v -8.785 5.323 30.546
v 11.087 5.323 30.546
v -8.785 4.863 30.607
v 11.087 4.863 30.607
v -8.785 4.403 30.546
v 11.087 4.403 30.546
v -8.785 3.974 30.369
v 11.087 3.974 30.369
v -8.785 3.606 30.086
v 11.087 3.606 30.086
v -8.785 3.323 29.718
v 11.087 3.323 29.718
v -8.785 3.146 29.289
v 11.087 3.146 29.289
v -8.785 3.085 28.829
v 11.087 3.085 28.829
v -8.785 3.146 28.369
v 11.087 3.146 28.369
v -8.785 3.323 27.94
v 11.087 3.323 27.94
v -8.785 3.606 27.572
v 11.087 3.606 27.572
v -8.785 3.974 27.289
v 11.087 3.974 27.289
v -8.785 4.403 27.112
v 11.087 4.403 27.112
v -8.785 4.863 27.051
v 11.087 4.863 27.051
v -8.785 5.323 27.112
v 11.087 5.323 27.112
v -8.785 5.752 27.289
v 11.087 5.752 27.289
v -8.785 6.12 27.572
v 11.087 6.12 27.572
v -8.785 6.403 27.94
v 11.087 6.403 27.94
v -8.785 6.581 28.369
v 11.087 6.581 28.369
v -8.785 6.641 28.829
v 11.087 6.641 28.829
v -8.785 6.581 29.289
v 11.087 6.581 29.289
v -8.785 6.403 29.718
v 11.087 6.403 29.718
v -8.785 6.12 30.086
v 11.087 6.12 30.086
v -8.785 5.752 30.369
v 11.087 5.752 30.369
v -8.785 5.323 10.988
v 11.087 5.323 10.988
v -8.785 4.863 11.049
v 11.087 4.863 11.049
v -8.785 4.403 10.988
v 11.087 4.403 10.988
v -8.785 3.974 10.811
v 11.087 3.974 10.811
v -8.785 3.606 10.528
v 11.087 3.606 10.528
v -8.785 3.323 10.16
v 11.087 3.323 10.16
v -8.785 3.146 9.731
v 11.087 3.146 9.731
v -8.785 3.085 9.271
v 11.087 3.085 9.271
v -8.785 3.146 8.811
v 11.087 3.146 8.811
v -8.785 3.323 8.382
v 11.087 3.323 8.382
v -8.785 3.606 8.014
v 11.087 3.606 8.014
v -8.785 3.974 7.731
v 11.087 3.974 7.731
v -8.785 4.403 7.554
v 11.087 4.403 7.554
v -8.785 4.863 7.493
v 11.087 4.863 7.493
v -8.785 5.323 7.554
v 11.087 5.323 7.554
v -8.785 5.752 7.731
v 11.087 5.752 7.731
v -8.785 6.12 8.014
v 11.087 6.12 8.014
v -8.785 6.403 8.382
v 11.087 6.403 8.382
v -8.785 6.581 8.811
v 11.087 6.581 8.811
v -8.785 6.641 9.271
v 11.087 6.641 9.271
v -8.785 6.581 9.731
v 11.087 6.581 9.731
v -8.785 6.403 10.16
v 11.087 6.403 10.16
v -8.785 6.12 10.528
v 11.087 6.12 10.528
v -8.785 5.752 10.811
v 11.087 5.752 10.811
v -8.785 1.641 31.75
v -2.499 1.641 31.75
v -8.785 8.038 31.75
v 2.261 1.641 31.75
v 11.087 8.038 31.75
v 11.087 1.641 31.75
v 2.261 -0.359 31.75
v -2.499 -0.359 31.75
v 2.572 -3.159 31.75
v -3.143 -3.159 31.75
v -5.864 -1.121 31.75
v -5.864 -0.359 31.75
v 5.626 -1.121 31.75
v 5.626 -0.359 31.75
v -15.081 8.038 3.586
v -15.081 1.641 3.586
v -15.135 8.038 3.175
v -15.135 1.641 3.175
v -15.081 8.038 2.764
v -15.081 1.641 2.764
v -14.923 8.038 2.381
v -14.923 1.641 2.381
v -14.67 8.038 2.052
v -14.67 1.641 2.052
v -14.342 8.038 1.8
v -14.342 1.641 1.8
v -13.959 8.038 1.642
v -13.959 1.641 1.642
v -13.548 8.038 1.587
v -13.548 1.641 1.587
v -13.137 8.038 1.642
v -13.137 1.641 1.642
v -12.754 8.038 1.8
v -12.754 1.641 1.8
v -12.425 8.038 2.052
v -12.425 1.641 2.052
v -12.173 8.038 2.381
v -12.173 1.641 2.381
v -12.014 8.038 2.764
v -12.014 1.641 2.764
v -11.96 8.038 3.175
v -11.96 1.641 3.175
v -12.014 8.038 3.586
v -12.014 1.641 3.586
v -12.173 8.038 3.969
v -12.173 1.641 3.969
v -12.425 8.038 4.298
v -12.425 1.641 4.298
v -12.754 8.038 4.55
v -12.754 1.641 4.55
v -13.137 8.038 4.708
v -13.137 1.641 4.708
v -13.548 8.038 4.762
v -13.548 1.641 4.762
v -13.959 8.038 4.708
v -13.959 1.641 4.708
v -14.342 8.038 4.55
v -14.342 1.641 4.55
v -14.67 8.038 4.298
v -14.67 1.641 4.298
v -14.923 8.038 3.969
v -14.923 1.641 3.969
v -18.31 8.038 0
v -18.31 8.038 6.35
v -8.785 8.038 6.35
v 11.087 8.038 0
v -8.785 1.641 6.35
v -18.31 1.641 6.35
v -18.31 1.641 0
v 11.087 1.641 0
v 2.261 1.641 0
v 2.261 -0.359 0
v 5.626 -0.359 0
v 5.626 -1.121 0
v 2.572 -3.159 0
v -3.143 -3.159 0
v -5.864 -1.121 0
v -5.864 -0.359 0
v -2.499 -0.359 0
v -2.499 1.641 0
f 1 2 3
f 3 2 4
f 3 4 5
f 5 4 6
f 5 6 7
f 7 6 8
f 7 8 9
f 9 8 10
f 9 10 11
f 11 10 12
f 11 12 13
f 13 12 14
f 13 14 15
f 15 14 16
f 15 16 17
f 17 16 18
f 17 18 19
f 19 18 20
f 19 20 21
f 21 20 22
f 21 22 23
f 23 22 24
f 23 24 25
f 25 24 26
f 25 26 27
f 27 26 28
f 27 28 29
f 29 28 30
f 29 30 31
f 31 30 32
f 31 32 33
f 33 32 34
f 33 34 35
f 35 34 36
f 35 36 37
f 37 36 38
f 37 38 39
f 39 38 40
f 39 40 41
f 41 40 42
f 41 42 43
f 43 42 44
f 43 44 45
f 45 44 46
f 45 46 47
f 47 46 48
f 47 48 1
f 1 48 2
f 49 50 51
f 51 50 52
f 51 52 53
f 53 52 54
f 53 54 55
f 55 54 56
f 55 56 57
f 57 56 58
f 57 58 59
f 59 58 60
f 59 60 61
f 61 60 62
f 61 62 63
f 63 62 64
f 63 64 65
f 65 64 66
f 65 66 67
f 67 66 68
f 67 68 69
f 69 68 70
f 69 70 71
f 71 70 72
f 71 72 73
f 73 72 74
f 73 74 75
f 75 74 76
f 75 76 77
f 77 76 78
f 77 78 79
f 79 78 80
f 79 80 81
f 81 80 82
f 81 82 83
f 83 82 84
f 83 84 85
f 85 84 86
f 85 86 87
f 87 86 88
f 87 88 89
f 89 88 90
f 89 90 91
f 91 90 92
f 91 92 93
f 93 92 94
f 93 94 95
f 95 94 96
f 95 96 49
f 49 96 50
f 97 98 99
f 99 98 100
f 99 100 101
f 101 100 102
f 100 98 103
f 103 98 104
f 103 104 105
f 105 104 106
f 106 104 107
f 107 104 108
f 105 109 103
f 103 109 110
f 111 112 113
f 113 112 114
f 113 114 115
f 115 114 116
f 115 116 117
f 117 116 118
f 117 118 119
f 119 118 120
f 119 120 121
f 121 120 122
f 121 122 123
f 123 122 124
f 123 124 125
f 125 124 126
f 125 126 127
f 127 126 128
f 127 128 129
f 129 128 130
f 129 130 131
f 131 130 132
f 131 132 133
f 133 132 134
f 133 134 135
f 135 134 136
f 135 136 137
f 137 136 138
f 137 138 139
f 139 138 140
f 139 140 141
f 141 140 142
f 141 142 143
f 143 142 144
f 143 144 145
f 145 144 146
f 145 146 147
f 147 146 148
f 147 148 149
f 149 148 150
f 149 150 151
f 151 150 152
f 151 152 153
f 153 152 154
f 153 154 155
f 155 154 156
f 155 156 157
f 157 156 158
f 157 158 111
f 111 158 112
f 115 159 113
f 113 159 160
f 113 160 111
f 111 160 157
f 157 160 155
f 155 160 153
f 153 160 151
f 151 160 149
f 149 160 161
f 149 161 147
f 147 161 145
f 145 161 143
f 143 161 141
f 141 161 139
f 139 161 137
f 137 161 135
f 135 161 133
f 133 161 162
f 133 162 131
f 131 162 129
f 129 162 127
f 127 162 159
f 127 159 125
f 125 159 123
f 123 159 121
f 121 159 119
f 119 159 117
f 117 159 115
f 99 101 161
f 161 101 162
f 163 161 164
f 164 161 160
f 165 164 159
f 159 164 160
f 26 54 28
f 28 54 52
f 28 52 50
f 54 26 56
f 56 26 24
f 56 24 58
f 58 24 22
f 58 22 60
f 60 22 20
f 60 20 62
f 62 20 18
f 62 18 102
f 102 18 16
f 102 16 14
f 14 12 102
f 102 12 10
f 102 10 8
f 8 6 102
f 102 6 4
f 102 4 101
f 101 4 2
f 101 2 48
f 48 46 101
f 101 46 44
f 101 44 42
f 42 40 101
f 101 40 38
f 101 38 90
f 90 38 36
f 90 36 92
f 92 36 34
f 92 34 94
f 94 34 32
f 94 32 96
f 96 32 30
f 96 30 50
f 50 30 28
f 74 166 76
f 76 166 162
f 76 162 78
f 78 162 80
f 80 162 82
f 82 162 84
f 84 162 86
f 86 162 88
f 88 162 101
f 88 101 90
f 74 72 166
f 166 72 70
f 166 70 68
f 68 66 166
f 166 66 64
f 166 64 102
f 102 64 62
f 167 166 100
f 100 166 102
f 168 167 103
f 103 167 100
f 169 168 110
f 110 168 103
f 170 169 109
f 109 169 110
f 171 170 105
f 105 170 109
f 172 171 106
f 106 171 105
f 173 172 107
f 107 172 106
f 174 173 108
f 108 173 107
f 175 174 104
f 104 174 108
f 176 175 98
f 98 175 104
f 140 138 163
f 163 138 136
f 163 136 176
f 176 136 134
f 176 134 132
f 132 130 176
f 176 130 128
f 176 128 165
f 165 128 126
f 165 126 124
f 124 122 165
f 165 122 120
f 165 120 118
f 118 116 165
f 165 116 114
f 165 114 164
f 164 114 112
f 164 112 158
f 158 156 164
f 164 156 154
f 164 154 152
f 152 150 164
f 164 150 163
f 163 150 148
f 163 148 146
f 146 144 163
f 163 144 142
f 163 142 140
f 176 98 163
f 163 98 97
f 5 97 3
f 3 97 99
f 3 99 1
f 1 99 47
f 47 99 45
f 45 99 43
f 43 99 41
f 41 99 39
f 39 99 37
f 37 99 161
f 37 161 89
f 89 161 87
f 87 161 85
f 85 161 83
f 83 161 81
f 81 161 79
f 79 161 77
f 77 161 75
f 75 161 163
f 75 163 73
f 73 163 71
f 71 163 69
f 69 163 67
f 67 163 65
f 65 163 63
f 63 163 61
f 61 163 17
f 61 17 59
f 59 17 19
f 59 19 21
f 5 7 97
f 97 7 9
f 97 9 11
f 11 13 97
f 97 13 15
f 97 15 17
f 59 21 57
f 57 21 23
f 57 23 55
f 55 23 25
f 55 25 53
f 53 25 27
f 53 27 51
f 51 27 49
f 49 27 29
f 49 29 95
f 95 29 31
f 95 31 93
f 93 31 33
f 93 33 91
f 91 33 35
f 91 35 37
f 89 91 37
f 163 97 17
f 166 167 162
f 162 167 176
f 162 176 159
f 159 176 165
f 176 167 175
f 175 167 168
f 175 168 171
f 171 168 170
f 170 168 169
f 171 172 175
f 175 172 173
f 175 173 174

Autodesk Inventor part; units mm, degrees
ref_plane "YZ Plane" through (0, 0, 0) normal (1, 0, 0) x (0, 1, 0)
ref_plane "XZ Plane" through (0, 0, 0) normal (0, 1, 0) x (-1, 0, 0)
ref_plane "XY Plane" through (0, 0, 0) normal (0, 0, 1) x (1, 0, 0)
sketch "Sketch1" plane through (0, 0, 0) normal (0, 0, 1) x (1, 0, 0)
  line L0 (0, 0) -> (14.5304, 0)
  line L1 (-8.7854, 6.6412) -> (11.0866, 6.6412)
  line L2 (11.0866, 1.6412) -> (2.2606, 1.6412)
  line L3 (2.2606, 1.6412) -> (2.2606, -0.3588)
  line L4 (2.2606, -0.3588) -> (5.6256, -0.3588)
  line L5 (2.5721, -3.1588) -> (-3.1429, -3.1588)
  line L6 (-3.1429, -3.1588) -> (-5.8644, -1.1208)
  line L7 (-5.8644, -1.1208) -> (-5.8644, -0.3588)
  line L8 (-5.8644, -0.3588) -> (-2.4994, -0.3588)
  line L9 (-2.4994, -0.3588) -> (-2.4994, 1.6412)
  line L10 (-2.4994, 1.6412) -> (-8.7854, 1.6412)
  line L11 (-8.7854, 1.6412) -> (-8.7854, 6.6412)
  line L12 (5.6256, -0.3588) -> (5.6256, -1.1208)
  line L13 (5.6256, -1.1208) -> (2.5721, -3.1588)
  line L14 (11.0866, 6.6412) -> (5.0156, 6.6412)
  line L15 (5.0156, 1.6412) -> (11.0866, 1.6412)
  line L16 (11.0866, 6.6412) -> (11.0866, 1.6412)
  dimension "d2" = 5
  dimension "d3" = 2
  dimension "d6" = 11.49
  dimension "d7" = 2.921
  dimension "d9" = 5.6425
  dimension "d11" = 0.762
  dimension "d12" = 0.762
  dimension "d78" = 5.461
  dimension "d88" = 3.365
  dimension "d89" = 3.365
extrude "Extrusion1" add sketch "Sketch1" along normal blind 25.4
sketch "Sketch14" plane through (-8.7854, 1.6412, 0) normal (-1, 0, 0) x (0, 0, 1)
  line L0 (0, 0) -> (0, 5) projected
  line L1 (0, 0) -> (25.4, 0) projected
  line L2 (25.4, 5) -> (25.4, 0) projected
  line L3 (0, 5) -> (25.4, 5) projected
  line L4 (0, 5) -> (0, 0) projected
  line L5 (0, 0) -> (25.4, 0) projected
  line L6 (0, 5) -> (6.35, 5)
  line L7 (6.35, 5) -> (6.35, 0)
  line L8 (6.35, 0) -> (0, 0)
  line L9 (0, 0) -> (0, 5)
  point P0 (0, -1.6412)
  dimension "d161" = 6.35
extrude "Extrusion6" add sketch "Sketch14" along normal blind 9.525 contours L0 L3 L7 L1
sketch "Sketch17" plane through (-8.7854, 6.6412, 25.4) normal (0, 1, 0) x (1, 0, 0)
  line L0 (-9.525, 25.4) -> (19.872, 25.4) projected
  line L1 (-9.525, 19.05) -> (-9.525, 25.4) projected
  line L2 (0, 19.05) -> (-9.525, 19.05) projected
  line L3 (0, 19.05) -> (0, 0) projected
  line L4 (19.872, 0) -> (0, 0) projected
  line L5 (19.872, 25.4) -> (19.872, 0) projected
  line L6 (-9.525, 25.4) -> (19.872, 25.4) projected
  line L7 (19.872, 0) -> (0, 0) projected
  line L8 (19.872, 25.4) -> (13.522, 25.4)
  line L9 (13.522, 0) -> (19.872, 0)
  line L10 (19.872, 0) -> (19.872, 25.4)
  point P0 (8.7854, 25.4)
  dimension "d175" = 6.35
extrude "Extrusion9" add sketch "Sketch17" along normal blind 1.397
sketch "Sketch19" plane through (-8.7854, 1.6412, 25.4) normal (0, -1, 0) x (1, 0, 0)
  line L0 (6.286, -25.4) -> (-9.525, -25.4) projected
  line L1 (6.286, -25.4) -> (6.286, 0) projected
  line L2 (0, 0) -> (6.286, 0) projected
  line L3 (0, -19.05) -> (0, 0) projected
  line L4 (0, -19.05) -> (-9.525, -19.05) projected
  line L5 (-9.525, -25.4) -> (-9.525, -19.05) projected
  point P0 (8.7854, -25.4)
  point P1 (-4.7625, -22.225)
hole "Hole11" at (-13.5479, 1.6412, 3.175) direction (0, 1, 0) diameter 3.175 depth 25.4 tip angle 118
sketch "Sketch20" plane through (0, 0, 25.4) normal (0, 0, 1) x (1, 0, 0)
  line L0 (-8.7854, 1.6412) -> (-8.7854, 8.0382) projected
  line L1 (-8.7854, 1.6412) -> (-2.4994, 1.6412) projected
  line L2 (-2.4994, 1.6412) -> (-2.4994, -0.3588) projected
  line L3 (-2.4994, -0.3588) -> (-5.8644, -0.3588) projected
  line L4 (-5.8644, -0.3588) -> (-5.8644, -1.1208) projected
  line L5 (-5.8644, -1.1208) -> (-3.1429, -3.1588) projected
  line L6 (-3.1429, -3.1588) -> (2.5721, -3.1588) projected
  line L7 (2.5721, -3.1588) -> (5.6256, -1.1208) projected
  line L8 (5.6256, -1.1208) -> (5.6256, -0.3588) projected
  line L9 (5.6256, -0.3588) -> (2.2606, -0.3588) projected
  line L10 (2.2606, -0.3588) -> (2.2606, 1.6412) projected
  line L11 (2.2606, 1.6412) -> (11.0866, 1.6412) projected
  line L12 (11.0866, 1.6412) -> (11.0866, 8.0382) projected
  line L13 (-8.7854, 8.0382) -> (11.0866, 8.0382) projected
  point P0 (0, 0)
extrude "Extrusion10" add sketch "Sketch20" along normal blind 6.35
sketch "Sketch21" plane through (11.0866, 1.6412, 0) normal (1, 0, 0) x (0, 0, -1)
  line L0 (0, 6.397) -> (0, 0) projected
  line L1 (0, 6.397) -> (-31.75, 6.397) projected
  line L2 (-31.75, 0) -> (-31.75, 6.397) projected
  line L3 (0, 0) -> (-31.75, 0) projected
  point P0 (0, -1.6412)
  point P1 (-28.829, 3.222)
  point P2 (-9.271, 3.222)
  dimension "d199" = 31.75
  dimension "d200" = 19.558
  dimension "d201" = 9.271
  dimension "d202" = 3.175
  dimension "d203" = 3.175
hole "Hole12" at (11.0866, 4.8632, 28.829) at (11.0866, 4.8632, 9.271) direction (-1, 0, 0) diameter 3.556 depth 25.4 tip angle 118
equation "\"d9\" = -0.5 * d8 + 0.5 * d0"
equation "\"d12\" = d11"
equation "\"d203\" = d202"
equation "\"d8\" = 5.715"
equation "\"d0\" = 17"
properties part number "Sliderfor2020"
